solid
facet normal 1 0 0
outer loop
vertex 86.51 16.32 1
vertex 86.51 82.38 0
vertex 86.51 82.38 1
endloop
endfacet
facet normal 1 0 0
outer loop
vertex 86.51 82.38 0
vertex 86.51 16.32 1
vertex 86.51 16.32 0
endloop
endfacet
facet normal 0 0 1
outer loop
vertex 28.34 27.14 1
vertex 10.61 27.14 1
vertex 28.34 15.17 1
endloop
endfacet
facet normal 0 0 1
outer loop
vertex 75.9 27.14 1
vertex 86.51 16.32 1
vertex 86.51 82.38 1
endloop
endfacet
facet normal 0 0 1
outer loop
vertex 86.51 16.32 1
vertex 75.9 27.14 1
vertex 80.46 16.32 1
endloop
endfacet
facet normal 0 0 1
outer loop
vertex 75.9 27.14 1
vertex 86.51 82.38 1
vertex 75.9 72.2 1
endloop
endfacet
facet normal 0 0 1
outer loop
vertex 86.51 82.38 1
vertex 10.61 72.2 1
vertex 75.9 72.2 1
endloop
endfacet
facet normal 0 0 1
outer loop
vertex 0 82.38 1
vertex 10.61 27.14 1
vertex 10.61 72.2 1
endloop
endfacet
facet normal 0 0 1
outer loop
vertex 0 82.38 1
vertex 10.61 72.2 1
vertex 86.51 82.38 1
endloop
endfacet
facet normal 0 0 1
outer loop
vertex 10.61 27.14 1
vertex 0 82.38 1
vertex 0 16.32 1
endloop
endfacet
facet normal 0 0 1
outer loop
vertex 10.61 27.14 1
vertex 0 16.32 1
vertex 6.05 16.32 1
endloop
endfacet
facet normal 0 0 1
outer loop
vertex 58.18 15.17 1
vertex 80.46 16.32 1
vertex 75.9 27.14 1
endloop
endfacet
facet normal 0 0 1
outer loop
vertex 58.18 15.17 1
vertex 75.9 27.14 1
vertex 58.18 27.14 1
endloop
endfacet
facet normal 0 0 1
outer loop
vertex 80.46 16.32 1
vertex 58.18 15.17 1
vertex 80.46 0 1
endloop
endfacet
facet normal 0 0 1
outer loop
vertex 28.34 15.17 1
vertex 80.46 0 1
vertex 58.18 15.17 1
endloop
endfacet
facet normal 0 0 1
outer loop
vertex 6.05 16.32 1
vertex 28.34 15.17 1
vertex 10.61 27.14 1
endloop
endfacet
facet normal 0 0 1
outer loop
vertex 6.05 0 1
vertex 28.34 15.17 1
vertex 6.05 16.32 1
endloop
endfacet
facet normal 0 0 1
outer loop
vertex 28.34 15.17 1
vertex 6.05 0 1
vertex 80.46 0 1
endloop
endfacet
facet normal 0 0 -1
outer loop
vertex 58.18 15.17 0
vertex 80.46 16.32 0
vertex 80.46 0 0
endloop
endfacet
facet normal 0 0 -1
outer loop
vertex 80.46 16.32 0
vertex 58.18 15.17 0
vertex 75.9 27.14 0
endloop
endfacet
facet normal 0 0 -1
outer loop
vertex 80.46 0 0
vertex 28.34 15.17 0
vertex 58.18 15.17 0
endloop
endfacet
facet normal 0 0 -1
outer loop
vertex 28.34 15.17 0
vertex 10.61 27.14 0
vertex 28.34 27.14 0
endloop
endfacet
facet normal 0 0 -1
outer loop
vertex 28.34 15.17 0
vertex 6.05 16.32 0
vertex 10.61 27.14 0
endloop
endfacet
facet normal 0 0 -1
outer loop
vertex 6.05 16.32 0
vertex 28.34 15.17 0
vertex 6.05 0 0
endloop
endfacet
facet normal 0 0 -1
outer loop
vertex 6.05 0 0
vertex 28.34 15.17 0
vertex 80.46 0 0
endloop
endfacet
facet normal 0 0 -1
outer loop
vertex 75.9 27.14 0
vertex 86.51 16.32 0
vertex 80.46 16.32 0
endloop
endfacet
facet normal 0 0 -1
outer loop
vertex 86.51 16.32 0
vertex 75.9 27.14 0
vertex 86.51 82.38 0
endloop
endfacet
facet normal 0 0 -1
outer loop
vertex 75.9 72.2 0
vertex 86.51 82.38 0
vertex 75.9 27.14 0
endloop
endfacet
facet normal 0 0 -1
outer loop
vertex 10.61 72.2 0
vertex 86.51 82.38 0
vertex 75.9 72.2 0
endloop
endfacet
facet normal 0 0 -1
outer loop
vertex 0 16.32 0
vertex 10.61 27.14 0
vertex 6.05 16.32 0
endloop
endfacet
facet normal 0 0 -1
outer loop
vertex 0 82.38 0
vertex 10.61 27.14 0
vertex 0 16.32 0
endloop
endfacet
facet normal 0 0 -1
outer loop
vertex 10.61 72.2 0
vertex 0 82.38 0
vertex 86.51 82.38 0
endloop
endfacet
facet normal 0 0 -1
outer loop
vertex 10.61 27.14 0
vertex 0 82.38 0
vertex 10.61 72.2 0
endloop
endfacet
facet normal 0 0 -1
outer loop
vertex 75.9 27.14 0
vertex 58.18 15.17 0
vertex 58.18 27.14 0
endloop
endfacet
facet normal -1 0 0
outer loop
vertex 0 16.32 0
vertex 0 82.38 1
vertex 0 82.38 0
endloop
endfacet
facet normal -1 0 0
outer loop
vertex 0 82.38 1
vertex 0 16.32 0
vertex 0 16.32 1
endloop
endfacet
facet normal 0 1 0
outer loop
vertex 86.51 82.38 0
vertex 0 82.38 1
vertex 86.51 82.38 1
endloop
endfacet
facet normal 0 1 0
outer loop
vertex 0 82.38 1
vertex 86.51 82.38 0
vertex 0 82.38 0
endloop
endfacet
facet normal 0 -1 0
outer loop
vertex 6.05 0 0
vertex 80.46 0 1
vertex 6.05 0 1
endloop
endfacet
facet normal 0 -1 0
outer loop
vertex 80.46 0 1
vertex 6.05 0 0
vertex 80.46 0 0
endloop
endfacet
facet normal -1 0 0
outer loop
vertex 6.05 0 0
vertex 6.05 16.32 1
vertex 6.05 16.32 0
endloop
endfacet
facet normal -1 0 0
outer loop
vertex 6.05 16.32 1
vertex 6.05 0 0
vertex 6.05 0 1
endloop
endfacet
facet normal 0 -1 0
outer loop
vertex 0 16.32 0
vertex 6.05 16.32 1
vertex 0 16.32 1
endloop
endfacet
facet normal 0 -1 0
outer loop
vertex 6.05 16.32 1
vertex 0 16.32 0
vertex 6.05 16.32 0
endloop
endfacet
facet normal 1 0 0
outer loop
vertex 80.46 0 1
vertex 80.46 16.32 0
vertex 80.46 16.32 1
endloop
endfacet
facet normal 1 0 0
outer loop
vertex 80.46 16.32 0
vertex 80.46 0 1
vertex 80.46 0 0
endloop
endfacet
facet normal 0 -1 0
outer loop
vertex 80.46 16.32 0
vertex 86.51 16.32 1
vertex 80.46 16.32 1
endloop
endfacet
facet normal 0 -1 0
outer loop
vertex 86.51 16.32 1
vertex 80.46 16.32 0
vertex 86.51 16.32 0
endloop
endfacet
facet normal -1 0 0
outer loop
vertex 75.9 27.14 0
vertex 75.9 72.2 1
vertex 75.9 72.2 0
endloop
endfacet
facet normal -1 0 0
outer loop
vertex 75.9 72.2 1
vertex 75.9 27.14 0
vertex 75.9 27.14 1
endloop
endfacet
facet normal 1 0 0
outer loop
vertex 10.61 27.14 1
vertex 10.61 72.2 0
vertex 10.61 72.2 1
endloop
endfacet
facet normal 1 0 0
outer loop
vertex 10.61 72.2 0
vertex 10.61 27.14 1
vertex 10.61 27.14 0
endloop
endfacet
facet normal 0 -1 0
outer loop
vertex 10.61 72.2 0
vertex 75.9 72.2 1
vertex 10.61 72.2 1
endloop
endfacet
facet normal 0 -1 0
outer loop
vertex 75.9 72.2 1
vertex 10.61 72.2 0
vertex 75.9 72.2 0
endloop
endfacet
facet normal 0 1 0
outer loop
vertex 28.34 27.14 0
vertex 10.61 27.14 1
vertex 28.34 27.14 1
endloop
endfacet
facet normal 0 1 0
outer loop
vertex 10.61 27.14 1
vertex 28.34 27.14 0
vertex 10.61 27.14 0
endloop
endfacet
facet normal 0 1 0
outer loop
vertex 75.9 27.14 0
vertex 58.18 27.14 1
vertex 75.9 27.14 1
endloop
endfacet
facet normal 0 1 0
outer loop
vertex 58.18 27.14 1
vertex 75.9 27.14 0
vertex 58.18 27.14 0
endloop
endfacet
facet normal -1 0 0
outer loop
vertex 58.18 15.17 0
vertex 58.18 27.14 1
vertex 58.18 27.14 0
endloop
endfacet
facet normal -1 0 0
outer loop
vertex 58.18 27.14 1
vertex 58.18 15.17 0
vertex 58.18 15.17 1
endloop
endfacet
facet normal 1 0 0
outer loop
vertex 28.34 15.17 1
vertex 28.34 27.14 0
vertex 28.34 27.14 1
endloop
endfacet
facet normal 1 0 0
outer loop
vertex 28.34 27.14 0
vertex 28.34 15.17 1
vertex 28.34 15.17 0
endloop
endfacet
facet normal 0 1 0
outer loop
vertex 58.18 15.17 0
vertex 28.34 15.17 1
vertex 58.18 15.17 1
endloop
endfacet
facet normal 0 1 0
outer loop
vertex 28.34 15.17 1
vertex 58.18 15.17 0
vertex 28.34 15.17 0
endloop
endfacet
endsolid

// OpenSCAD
thicc=1;

w=86.51;
h=82.38;

h2=16.32;
w2=6.05;

w3=w2;
h3=h2;

x=0;
y=0;
x2=0;
y2=0;
x3=80.46;
y3=0;

w4=65.29;
h4= (15.17+57.03) - 27.14;
x4=10.61;
y4=27.14;

w5=29.84;
h5=27.14-15.17;
x5=28.34;
y5=15.17;


difference() {
difference() {
cube([w,h,thicc]);
translate([x2,y2,0]) cube([w2,h3,thicc]);
translate([x3,y3,0]) cube([w3,h3,thicc]);
}

translate([x4,y4,0])cube([w4,h4,thicc]);
translate([x5,y5,0])cube([w5,h5,thicc]);
}
